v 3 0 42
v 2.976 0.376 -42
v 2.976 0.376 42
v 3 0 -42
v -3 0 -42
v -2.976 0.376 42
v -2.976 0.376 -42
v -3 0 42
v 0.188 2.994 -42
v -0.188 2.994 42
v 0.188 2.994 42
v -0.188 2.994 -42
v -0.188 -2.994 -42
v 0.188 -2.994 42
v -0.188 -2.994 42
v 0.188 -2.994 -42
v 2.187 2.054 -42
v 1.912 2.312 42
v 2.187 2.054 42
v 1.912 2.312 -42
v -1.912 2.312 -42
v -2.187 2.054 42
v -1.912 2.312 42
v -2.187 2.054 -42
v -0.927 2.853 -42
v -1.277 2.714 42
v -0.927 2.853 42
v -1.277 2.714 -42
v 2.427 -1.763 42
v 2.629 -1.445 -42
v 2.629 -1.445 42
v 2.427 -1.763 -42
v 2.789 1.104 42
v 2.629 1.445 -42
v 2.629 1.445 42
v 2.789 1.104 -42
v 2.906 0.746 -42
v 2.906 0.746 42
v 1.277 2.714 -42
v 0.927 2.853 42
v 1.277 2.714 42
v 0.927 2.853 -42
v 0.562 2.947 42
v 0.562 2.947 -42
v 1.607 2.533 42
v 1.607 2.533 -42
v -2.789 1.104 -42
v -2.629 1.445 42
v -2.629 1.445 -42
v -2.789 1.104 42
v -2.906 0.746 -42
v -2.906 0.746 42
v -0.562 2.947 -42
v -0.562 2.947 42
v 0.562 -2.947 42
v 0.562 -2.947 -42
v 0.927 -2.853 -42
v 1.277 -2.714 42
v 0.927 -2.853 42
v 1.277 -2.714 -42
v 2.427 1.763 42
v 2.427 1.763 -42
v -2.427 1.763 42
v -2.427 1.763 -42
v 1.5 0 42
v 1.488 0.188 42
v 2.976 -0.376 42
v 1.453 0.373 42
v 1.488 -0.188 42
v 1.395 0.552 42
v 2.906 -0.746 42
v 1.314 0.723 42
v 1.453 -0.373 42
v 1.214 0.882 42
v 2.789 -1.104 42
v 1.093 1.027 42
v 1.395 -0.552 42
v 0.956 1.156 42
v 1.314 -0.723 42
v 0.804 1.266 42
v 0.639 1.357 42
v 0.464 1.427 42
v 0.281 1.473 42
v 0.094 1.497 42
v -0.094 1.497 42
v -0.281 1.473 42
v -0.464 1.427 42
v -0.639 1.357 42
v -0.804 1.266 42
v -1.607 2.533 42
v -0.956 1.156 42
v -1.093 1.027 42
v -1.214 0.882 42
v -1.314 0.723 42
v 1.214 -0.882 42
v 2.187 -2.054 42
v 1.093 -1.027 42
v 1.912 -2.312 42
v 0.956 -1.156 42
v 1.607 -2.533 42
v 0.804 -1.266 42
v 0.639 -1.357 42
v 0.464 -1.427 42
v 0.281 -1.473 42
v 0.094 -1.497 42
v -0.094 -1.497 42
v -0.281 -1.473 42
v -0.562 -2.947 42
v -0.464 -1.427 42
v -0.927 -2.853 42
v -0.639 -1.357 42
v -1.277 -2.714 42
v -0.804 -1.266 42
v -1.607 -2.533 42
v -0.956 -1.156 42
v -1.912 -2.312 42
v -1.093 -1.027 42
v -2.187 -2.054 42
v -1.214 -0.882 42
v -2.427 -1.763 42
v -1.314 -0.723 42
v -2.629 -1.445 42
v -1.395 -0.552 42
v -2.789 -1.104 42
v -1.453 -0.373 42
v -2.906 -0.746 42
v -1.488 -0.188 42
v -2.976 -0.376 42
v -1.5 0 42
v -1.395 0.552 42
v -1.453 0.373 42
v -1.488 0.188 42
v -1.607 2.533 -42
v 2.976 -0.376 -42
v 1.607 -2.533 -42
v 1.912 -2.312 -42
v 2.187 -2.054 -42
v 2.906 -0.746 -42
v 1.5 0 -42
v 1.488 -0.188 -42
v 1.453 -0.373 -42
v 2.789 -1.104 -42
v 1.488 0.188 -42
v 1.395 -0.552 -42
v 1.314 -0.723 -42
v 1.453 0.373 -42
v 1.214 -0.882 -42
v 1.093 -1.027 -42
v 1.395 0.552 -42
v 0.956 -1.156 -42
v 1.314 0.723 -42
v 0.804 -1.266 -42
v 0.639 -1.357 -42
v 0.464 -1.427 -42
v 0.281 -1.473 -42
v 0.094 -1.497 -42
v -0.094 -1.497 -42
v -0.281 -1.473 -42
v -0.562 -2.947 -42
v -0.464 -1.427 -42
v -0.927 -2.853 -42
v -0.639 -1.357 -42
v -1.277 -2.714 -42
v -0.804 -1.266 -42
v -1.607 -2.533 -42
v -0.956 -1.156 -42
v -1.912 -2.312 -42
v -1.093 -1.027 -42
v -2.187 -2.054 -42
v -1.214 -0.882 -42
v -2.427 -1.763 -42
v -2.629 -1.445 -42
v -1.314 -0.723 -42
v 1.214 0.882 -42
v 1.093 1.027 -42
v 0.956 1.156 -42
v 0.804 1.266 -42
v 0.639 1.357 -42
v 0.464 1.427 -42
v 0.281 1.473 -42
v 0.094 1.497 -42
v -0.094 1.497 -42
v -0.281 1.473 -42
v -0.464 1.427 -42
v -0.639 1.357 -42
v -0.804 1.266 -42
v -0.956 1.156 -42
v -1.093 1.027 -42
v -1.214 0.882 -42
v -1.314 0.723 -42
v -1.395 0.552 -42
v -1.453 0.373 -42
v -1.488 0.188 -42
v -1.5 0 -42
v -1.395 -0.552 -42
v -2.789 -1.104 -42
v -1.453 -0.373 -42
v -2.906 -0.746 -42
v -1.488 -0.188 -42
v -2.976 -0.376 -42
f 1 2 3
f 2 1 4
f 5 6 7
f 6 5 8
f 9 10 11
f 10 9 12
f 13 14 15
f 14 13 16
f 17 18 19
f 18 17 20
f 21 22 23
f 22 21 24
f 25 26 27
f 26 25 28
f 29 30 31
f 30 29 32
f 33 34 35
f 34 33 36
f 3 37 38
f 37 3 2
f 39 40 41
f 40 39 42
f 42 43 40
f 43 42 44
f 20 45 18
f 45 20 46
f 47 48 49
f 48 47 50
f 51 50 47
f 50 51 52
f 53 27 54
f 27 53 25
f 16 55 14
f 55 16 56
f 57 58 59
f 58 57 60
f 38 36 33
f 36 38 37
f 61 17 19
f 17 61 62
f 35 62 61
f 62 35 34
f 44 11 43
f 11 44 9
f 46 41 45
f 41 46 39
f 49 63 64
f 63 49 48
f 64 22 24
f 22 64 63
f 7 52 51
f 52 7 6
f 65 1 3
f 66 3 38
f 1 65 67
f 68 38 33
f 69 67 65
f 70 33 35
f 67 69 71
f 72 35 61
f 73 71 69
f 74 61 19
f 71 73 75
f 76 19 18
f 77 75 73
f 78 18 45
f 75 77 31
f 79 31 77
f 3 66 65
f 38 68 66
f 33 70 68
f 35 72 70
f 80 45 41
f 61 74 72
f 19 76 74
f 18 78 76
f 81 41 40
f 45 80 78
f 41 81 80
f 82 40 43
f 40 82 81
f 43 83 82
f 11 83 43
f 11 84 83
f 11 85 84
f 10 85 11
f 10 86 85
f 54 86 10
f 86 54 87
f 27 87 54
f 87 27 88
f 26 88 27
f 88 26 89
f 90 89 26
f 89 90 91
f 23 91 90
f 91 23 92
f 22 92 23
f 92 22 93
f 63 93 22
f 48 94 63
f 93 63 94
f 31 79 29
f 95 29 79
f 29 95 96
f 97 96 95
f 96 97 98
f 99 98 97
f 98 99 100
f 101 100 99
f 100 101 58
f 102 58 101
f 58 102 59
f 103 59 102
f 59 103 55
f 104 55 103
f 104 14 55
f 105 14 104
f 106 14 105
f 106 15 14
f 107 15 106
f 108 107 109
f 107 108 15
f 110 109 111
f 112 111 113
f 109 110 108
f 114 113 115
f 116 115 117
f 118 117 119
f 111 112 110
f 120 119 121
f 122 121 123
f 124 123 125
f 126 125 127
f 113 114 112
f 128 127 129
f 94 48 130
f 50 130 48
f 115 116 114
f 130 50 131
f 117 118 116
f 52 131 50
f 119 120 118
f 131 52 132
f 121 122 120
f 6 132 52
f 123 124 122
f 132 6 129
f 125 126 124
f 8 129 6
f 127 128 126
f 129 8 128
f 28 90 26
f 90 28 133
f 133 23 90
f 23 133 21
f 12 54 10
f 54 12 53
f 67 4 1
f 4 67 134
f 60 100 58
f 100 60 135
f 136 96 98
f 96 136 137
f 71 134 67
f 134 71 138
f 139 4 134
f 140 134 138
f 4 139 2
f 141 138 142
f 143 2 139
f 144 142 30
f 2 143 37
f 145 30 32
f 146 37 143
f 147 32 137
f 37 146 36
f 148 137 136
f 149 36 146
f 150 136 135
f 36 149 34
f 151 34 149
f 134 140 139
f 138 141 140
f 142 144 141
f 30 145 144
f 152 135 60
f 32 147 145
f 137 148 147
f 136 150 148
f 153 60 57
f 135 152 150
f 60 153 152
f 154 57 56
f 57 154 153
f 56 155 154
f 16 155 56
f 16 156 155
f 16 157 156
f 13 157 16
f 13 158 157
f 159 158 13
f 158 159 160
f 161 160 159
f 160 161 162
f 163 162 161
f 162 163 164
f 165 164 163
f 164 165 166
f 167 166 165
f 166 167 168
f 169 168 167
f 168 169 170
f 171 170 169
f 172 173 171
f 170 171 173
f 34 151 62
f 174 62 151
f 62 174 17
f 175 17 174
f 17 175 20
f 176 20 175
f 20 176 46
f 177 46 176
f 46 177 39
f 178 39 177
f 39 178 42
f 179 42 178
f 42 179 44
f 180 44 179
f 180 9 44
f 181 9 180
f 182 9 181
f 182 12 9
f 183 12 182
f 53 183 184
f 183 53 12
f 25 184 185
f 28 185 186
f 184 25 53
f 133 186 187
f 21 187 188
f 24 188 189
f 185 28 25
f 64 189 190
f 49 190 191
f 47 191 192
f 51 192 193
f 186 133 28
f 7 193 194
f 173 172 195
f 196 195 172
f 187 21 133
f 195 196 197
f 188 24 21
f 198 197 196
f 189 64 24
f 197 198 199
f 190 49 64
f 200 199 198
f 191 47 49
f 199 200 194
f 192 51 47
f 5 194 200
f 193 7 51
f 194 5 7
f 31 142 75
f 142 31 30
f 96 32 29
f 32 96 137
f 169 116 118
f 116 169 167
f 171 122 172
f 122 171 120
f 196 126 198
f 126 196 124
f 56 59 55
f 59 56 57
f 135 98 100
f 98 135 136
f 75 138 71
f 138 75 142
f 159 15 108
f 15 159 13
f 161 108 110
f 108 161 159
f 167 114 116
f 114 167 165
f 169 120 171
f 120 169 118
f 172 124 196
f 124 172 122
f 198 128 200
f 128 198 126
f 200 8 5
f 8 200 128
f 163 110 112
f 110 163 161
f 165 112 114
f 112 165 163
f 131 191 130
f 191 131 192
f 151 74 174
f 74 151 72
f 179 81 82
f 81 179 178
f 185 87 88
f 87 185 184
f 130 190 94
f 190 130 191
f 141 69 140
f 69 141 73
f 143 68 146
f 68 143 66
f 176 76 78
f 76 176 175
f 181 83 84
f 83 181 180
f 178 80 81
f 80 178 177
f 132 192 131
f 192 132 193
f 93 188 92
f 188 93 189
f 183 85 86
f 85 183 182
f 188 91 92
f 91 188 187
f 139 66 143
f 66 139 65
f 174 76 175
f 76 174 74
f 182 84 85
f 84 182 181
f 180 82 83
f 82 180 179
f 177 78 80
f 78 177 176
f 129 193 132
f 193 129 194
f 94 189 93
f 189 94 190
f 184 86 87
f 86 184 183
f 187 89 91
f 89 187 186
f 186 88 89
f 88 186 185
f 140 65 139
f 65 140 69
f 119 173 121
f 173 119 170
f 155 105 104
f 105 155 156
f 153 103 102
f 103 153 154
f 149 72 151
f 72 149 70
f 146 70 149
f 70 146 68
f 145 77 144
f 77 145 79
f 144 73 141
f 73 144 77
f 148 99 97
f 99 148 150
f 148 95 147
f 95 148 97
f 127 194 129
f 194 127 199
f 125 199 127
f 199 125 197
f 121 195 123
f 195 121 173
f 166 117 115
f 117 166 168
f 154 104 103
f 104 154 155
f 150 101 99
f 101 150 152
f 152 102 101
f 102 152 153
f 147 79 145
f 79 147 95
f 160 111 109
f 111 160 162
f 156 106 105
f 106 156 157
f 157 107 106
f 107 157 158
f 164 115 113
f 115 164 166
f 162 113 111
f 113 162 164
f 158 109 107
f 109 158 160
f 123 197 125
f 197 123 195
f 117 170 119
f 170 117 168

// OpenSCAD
$fn = 50;


difference() {
	union() {
		translate(v = [0, 0, -42.0000000000]) {
			cylinder(h = 84, r = 3.0000000000);
		}
	}
	union() {
		translate(v = [0, 0, -100.0000000000]) {
			cylinder(h = 200, r = 1.5000000000);
		}
	}
}
